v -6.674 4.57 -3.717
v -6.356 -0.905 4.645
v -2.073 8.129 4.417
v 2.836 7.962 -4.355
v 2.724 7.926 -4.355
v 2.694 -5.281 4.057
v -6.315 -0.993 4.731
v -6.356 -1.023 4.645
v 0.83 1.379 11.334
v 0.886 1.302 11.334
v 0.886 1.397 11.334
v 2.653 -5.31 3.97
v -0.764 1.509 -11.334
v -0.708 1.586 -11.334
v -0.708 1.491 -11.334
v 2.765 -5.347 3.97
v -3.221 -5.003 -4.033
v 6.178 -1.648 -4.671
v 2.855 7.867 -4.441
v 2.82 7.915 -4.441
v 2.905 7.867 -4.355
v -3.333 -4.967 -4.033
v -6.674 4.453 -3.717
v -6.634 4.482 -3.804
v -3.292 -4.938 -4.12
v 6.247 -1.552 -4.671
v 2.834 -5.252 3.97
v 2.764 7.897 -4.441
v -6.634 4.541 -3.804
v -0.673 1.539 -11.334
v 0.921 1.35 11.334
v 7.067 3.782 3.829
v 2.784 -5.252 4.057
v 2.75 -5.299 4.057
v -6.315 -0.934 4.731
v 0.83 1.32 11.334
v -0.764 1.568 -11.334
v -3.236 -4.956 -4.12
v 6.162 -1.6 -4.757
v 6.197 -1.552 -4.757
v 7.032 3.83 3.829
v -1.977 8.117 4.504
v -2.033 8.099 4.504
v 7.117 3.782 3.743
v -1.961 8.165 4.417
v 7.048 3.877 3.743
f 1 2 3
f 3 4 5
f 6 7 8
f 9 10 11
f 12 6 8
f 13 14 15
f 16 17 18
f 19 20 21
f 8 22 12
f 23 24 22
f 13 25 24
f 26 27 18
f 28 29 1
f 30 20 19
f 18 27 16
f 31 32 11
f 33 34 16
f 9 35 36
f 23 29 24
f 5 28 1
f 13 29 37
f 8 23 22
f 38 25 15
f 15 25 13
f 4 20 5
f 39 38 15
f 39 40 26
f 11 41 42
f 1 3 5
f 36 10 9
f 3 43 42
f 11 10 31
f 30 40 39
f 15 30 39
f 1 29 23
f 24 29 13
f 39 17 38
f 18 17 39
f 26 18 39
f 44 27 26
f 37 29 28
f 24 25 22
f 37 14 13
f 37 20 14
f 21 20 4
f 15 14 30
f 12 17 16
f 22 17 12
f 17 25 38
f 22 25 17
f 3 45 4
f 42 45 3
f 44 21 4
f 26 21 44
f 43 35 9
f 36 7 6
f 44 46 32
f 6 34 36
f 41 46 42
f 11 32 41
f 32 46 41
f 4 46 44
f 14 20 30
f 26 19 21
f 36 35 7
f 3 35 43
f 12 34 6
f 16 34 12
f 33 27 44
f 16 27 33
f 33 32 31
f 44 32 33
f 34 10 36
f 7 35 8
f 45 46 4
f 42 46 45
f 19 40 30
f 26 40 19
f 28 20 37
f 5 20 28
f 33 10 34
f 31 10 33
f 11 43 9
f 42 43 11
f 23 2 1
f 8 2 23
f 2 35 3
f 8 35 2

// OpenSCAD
// Auto-generated OpenSCAD file

    inner_points = 10*[[0.28049451672543285, 0.7867345754664719, -0.4354727591501641], [-0.32516147561098985, -0.49081979957517285, -0.40329143290440955], [0.6146891757185167, -0.15523991749246438, -0.467063652066502], [-0.6593561346040736, 0.45115469338376324, -0.3717005399880716], [0.7016700222556713, 0.3782028432350707, 0.37428832740645657], [-0.1992160562123516, 0.806988584660629, 0.4417202306321675], [0.27340656300831917, -0.5251645186914181, 0.39704396142240617], [-0.6274795154597037, -0.09637877726585975, 0.4644758646481171], [-0.0723068878516462, 0.15388180167658133, -1.1246958983691562], [0.08706866180685142, 0.13498761925367364, 1.1246958983691562]];

    outer_points = 10*[[0.17620995754639138, 0.41987517424097626, -0.6851507748037986], [-0.13338679414034935, 0.41987517424097626, 0.6947585886491126], [-0.6676027533643164, 0.4567802144980838, -0.14978349254876247], [0.7104259167703585, 0.3829701339838687, 0.15939130639407634], [-0.3991593090883643, -0.393779370015213, -0.6019853395350742], [0.5752541082333443, -0.4459709784667395, -0.3833657426306054], [-0.6180772716393863, -0.393779370015213, 0.37375792878529157], [0.35633614568232225, -0.4459709784667395, 0.5923775256897603], [0.05742142630098579, 1.1260182319875078, 0.01288308314360636], [-0.05742142630098579, -1.1260182319875078, -0.01288308314360636]];

    // Convex hull for inner set (I)
    module inner_hull() {
        hull() {
            for (p = inner_points) {
                translate(p) sphere(r=0.1);
            }
        }
    }

    // Convex hull for outer set (O) minus inner hull (O \ I)
    module outer_minus_inner() {
        difference() {
            hull() {
                for (p = outer_points) {
                    translate(p) sphere(r=0.1);
                }
            }
            inner_hull(); // Subtract inner hull
        }
    }

    // Convex hull for outer set (O) minus all translated inner hulls
    module outer_minus_AllTranslationInner() {
        difference() {
            hull() {
                for (p = outer_points) {
                    translate(p) sphere(r=0.1);
                }
            }
            hull() {
                translate([0,0,50]) inner_hull();
                translate([0,0,-50]) inner_hull();
            }; // Subtract translated inner hulls
        }
    }

    // Difference between outer_minus_inner and outer_minus_AllTranslationInner
    module outer_minus_inner_diff() {
        difference() {
            // Outer minus inner
            difference() {
                hull() {
                    for (p = outer_points) {
                        translate(p) sphere(r=0.1);
                    }
                }
                inner_hull();
            }

            // Subtract Outer minus AllTranslationInner
            difference() {
                hull() {
                    for (p = outer_points) {
                        translate(p) sphere(r=0.1);
                    }
                }
                hull() {
                    translate([0,0,50]) inner_hull();
                    translate([0,0,-50]) inner_hull();
                };
            }
        }
    }

    // Rendering all with colors applied
    color([1, 0, 0, 0.5]) inner_hull(); // Transparent red
    
